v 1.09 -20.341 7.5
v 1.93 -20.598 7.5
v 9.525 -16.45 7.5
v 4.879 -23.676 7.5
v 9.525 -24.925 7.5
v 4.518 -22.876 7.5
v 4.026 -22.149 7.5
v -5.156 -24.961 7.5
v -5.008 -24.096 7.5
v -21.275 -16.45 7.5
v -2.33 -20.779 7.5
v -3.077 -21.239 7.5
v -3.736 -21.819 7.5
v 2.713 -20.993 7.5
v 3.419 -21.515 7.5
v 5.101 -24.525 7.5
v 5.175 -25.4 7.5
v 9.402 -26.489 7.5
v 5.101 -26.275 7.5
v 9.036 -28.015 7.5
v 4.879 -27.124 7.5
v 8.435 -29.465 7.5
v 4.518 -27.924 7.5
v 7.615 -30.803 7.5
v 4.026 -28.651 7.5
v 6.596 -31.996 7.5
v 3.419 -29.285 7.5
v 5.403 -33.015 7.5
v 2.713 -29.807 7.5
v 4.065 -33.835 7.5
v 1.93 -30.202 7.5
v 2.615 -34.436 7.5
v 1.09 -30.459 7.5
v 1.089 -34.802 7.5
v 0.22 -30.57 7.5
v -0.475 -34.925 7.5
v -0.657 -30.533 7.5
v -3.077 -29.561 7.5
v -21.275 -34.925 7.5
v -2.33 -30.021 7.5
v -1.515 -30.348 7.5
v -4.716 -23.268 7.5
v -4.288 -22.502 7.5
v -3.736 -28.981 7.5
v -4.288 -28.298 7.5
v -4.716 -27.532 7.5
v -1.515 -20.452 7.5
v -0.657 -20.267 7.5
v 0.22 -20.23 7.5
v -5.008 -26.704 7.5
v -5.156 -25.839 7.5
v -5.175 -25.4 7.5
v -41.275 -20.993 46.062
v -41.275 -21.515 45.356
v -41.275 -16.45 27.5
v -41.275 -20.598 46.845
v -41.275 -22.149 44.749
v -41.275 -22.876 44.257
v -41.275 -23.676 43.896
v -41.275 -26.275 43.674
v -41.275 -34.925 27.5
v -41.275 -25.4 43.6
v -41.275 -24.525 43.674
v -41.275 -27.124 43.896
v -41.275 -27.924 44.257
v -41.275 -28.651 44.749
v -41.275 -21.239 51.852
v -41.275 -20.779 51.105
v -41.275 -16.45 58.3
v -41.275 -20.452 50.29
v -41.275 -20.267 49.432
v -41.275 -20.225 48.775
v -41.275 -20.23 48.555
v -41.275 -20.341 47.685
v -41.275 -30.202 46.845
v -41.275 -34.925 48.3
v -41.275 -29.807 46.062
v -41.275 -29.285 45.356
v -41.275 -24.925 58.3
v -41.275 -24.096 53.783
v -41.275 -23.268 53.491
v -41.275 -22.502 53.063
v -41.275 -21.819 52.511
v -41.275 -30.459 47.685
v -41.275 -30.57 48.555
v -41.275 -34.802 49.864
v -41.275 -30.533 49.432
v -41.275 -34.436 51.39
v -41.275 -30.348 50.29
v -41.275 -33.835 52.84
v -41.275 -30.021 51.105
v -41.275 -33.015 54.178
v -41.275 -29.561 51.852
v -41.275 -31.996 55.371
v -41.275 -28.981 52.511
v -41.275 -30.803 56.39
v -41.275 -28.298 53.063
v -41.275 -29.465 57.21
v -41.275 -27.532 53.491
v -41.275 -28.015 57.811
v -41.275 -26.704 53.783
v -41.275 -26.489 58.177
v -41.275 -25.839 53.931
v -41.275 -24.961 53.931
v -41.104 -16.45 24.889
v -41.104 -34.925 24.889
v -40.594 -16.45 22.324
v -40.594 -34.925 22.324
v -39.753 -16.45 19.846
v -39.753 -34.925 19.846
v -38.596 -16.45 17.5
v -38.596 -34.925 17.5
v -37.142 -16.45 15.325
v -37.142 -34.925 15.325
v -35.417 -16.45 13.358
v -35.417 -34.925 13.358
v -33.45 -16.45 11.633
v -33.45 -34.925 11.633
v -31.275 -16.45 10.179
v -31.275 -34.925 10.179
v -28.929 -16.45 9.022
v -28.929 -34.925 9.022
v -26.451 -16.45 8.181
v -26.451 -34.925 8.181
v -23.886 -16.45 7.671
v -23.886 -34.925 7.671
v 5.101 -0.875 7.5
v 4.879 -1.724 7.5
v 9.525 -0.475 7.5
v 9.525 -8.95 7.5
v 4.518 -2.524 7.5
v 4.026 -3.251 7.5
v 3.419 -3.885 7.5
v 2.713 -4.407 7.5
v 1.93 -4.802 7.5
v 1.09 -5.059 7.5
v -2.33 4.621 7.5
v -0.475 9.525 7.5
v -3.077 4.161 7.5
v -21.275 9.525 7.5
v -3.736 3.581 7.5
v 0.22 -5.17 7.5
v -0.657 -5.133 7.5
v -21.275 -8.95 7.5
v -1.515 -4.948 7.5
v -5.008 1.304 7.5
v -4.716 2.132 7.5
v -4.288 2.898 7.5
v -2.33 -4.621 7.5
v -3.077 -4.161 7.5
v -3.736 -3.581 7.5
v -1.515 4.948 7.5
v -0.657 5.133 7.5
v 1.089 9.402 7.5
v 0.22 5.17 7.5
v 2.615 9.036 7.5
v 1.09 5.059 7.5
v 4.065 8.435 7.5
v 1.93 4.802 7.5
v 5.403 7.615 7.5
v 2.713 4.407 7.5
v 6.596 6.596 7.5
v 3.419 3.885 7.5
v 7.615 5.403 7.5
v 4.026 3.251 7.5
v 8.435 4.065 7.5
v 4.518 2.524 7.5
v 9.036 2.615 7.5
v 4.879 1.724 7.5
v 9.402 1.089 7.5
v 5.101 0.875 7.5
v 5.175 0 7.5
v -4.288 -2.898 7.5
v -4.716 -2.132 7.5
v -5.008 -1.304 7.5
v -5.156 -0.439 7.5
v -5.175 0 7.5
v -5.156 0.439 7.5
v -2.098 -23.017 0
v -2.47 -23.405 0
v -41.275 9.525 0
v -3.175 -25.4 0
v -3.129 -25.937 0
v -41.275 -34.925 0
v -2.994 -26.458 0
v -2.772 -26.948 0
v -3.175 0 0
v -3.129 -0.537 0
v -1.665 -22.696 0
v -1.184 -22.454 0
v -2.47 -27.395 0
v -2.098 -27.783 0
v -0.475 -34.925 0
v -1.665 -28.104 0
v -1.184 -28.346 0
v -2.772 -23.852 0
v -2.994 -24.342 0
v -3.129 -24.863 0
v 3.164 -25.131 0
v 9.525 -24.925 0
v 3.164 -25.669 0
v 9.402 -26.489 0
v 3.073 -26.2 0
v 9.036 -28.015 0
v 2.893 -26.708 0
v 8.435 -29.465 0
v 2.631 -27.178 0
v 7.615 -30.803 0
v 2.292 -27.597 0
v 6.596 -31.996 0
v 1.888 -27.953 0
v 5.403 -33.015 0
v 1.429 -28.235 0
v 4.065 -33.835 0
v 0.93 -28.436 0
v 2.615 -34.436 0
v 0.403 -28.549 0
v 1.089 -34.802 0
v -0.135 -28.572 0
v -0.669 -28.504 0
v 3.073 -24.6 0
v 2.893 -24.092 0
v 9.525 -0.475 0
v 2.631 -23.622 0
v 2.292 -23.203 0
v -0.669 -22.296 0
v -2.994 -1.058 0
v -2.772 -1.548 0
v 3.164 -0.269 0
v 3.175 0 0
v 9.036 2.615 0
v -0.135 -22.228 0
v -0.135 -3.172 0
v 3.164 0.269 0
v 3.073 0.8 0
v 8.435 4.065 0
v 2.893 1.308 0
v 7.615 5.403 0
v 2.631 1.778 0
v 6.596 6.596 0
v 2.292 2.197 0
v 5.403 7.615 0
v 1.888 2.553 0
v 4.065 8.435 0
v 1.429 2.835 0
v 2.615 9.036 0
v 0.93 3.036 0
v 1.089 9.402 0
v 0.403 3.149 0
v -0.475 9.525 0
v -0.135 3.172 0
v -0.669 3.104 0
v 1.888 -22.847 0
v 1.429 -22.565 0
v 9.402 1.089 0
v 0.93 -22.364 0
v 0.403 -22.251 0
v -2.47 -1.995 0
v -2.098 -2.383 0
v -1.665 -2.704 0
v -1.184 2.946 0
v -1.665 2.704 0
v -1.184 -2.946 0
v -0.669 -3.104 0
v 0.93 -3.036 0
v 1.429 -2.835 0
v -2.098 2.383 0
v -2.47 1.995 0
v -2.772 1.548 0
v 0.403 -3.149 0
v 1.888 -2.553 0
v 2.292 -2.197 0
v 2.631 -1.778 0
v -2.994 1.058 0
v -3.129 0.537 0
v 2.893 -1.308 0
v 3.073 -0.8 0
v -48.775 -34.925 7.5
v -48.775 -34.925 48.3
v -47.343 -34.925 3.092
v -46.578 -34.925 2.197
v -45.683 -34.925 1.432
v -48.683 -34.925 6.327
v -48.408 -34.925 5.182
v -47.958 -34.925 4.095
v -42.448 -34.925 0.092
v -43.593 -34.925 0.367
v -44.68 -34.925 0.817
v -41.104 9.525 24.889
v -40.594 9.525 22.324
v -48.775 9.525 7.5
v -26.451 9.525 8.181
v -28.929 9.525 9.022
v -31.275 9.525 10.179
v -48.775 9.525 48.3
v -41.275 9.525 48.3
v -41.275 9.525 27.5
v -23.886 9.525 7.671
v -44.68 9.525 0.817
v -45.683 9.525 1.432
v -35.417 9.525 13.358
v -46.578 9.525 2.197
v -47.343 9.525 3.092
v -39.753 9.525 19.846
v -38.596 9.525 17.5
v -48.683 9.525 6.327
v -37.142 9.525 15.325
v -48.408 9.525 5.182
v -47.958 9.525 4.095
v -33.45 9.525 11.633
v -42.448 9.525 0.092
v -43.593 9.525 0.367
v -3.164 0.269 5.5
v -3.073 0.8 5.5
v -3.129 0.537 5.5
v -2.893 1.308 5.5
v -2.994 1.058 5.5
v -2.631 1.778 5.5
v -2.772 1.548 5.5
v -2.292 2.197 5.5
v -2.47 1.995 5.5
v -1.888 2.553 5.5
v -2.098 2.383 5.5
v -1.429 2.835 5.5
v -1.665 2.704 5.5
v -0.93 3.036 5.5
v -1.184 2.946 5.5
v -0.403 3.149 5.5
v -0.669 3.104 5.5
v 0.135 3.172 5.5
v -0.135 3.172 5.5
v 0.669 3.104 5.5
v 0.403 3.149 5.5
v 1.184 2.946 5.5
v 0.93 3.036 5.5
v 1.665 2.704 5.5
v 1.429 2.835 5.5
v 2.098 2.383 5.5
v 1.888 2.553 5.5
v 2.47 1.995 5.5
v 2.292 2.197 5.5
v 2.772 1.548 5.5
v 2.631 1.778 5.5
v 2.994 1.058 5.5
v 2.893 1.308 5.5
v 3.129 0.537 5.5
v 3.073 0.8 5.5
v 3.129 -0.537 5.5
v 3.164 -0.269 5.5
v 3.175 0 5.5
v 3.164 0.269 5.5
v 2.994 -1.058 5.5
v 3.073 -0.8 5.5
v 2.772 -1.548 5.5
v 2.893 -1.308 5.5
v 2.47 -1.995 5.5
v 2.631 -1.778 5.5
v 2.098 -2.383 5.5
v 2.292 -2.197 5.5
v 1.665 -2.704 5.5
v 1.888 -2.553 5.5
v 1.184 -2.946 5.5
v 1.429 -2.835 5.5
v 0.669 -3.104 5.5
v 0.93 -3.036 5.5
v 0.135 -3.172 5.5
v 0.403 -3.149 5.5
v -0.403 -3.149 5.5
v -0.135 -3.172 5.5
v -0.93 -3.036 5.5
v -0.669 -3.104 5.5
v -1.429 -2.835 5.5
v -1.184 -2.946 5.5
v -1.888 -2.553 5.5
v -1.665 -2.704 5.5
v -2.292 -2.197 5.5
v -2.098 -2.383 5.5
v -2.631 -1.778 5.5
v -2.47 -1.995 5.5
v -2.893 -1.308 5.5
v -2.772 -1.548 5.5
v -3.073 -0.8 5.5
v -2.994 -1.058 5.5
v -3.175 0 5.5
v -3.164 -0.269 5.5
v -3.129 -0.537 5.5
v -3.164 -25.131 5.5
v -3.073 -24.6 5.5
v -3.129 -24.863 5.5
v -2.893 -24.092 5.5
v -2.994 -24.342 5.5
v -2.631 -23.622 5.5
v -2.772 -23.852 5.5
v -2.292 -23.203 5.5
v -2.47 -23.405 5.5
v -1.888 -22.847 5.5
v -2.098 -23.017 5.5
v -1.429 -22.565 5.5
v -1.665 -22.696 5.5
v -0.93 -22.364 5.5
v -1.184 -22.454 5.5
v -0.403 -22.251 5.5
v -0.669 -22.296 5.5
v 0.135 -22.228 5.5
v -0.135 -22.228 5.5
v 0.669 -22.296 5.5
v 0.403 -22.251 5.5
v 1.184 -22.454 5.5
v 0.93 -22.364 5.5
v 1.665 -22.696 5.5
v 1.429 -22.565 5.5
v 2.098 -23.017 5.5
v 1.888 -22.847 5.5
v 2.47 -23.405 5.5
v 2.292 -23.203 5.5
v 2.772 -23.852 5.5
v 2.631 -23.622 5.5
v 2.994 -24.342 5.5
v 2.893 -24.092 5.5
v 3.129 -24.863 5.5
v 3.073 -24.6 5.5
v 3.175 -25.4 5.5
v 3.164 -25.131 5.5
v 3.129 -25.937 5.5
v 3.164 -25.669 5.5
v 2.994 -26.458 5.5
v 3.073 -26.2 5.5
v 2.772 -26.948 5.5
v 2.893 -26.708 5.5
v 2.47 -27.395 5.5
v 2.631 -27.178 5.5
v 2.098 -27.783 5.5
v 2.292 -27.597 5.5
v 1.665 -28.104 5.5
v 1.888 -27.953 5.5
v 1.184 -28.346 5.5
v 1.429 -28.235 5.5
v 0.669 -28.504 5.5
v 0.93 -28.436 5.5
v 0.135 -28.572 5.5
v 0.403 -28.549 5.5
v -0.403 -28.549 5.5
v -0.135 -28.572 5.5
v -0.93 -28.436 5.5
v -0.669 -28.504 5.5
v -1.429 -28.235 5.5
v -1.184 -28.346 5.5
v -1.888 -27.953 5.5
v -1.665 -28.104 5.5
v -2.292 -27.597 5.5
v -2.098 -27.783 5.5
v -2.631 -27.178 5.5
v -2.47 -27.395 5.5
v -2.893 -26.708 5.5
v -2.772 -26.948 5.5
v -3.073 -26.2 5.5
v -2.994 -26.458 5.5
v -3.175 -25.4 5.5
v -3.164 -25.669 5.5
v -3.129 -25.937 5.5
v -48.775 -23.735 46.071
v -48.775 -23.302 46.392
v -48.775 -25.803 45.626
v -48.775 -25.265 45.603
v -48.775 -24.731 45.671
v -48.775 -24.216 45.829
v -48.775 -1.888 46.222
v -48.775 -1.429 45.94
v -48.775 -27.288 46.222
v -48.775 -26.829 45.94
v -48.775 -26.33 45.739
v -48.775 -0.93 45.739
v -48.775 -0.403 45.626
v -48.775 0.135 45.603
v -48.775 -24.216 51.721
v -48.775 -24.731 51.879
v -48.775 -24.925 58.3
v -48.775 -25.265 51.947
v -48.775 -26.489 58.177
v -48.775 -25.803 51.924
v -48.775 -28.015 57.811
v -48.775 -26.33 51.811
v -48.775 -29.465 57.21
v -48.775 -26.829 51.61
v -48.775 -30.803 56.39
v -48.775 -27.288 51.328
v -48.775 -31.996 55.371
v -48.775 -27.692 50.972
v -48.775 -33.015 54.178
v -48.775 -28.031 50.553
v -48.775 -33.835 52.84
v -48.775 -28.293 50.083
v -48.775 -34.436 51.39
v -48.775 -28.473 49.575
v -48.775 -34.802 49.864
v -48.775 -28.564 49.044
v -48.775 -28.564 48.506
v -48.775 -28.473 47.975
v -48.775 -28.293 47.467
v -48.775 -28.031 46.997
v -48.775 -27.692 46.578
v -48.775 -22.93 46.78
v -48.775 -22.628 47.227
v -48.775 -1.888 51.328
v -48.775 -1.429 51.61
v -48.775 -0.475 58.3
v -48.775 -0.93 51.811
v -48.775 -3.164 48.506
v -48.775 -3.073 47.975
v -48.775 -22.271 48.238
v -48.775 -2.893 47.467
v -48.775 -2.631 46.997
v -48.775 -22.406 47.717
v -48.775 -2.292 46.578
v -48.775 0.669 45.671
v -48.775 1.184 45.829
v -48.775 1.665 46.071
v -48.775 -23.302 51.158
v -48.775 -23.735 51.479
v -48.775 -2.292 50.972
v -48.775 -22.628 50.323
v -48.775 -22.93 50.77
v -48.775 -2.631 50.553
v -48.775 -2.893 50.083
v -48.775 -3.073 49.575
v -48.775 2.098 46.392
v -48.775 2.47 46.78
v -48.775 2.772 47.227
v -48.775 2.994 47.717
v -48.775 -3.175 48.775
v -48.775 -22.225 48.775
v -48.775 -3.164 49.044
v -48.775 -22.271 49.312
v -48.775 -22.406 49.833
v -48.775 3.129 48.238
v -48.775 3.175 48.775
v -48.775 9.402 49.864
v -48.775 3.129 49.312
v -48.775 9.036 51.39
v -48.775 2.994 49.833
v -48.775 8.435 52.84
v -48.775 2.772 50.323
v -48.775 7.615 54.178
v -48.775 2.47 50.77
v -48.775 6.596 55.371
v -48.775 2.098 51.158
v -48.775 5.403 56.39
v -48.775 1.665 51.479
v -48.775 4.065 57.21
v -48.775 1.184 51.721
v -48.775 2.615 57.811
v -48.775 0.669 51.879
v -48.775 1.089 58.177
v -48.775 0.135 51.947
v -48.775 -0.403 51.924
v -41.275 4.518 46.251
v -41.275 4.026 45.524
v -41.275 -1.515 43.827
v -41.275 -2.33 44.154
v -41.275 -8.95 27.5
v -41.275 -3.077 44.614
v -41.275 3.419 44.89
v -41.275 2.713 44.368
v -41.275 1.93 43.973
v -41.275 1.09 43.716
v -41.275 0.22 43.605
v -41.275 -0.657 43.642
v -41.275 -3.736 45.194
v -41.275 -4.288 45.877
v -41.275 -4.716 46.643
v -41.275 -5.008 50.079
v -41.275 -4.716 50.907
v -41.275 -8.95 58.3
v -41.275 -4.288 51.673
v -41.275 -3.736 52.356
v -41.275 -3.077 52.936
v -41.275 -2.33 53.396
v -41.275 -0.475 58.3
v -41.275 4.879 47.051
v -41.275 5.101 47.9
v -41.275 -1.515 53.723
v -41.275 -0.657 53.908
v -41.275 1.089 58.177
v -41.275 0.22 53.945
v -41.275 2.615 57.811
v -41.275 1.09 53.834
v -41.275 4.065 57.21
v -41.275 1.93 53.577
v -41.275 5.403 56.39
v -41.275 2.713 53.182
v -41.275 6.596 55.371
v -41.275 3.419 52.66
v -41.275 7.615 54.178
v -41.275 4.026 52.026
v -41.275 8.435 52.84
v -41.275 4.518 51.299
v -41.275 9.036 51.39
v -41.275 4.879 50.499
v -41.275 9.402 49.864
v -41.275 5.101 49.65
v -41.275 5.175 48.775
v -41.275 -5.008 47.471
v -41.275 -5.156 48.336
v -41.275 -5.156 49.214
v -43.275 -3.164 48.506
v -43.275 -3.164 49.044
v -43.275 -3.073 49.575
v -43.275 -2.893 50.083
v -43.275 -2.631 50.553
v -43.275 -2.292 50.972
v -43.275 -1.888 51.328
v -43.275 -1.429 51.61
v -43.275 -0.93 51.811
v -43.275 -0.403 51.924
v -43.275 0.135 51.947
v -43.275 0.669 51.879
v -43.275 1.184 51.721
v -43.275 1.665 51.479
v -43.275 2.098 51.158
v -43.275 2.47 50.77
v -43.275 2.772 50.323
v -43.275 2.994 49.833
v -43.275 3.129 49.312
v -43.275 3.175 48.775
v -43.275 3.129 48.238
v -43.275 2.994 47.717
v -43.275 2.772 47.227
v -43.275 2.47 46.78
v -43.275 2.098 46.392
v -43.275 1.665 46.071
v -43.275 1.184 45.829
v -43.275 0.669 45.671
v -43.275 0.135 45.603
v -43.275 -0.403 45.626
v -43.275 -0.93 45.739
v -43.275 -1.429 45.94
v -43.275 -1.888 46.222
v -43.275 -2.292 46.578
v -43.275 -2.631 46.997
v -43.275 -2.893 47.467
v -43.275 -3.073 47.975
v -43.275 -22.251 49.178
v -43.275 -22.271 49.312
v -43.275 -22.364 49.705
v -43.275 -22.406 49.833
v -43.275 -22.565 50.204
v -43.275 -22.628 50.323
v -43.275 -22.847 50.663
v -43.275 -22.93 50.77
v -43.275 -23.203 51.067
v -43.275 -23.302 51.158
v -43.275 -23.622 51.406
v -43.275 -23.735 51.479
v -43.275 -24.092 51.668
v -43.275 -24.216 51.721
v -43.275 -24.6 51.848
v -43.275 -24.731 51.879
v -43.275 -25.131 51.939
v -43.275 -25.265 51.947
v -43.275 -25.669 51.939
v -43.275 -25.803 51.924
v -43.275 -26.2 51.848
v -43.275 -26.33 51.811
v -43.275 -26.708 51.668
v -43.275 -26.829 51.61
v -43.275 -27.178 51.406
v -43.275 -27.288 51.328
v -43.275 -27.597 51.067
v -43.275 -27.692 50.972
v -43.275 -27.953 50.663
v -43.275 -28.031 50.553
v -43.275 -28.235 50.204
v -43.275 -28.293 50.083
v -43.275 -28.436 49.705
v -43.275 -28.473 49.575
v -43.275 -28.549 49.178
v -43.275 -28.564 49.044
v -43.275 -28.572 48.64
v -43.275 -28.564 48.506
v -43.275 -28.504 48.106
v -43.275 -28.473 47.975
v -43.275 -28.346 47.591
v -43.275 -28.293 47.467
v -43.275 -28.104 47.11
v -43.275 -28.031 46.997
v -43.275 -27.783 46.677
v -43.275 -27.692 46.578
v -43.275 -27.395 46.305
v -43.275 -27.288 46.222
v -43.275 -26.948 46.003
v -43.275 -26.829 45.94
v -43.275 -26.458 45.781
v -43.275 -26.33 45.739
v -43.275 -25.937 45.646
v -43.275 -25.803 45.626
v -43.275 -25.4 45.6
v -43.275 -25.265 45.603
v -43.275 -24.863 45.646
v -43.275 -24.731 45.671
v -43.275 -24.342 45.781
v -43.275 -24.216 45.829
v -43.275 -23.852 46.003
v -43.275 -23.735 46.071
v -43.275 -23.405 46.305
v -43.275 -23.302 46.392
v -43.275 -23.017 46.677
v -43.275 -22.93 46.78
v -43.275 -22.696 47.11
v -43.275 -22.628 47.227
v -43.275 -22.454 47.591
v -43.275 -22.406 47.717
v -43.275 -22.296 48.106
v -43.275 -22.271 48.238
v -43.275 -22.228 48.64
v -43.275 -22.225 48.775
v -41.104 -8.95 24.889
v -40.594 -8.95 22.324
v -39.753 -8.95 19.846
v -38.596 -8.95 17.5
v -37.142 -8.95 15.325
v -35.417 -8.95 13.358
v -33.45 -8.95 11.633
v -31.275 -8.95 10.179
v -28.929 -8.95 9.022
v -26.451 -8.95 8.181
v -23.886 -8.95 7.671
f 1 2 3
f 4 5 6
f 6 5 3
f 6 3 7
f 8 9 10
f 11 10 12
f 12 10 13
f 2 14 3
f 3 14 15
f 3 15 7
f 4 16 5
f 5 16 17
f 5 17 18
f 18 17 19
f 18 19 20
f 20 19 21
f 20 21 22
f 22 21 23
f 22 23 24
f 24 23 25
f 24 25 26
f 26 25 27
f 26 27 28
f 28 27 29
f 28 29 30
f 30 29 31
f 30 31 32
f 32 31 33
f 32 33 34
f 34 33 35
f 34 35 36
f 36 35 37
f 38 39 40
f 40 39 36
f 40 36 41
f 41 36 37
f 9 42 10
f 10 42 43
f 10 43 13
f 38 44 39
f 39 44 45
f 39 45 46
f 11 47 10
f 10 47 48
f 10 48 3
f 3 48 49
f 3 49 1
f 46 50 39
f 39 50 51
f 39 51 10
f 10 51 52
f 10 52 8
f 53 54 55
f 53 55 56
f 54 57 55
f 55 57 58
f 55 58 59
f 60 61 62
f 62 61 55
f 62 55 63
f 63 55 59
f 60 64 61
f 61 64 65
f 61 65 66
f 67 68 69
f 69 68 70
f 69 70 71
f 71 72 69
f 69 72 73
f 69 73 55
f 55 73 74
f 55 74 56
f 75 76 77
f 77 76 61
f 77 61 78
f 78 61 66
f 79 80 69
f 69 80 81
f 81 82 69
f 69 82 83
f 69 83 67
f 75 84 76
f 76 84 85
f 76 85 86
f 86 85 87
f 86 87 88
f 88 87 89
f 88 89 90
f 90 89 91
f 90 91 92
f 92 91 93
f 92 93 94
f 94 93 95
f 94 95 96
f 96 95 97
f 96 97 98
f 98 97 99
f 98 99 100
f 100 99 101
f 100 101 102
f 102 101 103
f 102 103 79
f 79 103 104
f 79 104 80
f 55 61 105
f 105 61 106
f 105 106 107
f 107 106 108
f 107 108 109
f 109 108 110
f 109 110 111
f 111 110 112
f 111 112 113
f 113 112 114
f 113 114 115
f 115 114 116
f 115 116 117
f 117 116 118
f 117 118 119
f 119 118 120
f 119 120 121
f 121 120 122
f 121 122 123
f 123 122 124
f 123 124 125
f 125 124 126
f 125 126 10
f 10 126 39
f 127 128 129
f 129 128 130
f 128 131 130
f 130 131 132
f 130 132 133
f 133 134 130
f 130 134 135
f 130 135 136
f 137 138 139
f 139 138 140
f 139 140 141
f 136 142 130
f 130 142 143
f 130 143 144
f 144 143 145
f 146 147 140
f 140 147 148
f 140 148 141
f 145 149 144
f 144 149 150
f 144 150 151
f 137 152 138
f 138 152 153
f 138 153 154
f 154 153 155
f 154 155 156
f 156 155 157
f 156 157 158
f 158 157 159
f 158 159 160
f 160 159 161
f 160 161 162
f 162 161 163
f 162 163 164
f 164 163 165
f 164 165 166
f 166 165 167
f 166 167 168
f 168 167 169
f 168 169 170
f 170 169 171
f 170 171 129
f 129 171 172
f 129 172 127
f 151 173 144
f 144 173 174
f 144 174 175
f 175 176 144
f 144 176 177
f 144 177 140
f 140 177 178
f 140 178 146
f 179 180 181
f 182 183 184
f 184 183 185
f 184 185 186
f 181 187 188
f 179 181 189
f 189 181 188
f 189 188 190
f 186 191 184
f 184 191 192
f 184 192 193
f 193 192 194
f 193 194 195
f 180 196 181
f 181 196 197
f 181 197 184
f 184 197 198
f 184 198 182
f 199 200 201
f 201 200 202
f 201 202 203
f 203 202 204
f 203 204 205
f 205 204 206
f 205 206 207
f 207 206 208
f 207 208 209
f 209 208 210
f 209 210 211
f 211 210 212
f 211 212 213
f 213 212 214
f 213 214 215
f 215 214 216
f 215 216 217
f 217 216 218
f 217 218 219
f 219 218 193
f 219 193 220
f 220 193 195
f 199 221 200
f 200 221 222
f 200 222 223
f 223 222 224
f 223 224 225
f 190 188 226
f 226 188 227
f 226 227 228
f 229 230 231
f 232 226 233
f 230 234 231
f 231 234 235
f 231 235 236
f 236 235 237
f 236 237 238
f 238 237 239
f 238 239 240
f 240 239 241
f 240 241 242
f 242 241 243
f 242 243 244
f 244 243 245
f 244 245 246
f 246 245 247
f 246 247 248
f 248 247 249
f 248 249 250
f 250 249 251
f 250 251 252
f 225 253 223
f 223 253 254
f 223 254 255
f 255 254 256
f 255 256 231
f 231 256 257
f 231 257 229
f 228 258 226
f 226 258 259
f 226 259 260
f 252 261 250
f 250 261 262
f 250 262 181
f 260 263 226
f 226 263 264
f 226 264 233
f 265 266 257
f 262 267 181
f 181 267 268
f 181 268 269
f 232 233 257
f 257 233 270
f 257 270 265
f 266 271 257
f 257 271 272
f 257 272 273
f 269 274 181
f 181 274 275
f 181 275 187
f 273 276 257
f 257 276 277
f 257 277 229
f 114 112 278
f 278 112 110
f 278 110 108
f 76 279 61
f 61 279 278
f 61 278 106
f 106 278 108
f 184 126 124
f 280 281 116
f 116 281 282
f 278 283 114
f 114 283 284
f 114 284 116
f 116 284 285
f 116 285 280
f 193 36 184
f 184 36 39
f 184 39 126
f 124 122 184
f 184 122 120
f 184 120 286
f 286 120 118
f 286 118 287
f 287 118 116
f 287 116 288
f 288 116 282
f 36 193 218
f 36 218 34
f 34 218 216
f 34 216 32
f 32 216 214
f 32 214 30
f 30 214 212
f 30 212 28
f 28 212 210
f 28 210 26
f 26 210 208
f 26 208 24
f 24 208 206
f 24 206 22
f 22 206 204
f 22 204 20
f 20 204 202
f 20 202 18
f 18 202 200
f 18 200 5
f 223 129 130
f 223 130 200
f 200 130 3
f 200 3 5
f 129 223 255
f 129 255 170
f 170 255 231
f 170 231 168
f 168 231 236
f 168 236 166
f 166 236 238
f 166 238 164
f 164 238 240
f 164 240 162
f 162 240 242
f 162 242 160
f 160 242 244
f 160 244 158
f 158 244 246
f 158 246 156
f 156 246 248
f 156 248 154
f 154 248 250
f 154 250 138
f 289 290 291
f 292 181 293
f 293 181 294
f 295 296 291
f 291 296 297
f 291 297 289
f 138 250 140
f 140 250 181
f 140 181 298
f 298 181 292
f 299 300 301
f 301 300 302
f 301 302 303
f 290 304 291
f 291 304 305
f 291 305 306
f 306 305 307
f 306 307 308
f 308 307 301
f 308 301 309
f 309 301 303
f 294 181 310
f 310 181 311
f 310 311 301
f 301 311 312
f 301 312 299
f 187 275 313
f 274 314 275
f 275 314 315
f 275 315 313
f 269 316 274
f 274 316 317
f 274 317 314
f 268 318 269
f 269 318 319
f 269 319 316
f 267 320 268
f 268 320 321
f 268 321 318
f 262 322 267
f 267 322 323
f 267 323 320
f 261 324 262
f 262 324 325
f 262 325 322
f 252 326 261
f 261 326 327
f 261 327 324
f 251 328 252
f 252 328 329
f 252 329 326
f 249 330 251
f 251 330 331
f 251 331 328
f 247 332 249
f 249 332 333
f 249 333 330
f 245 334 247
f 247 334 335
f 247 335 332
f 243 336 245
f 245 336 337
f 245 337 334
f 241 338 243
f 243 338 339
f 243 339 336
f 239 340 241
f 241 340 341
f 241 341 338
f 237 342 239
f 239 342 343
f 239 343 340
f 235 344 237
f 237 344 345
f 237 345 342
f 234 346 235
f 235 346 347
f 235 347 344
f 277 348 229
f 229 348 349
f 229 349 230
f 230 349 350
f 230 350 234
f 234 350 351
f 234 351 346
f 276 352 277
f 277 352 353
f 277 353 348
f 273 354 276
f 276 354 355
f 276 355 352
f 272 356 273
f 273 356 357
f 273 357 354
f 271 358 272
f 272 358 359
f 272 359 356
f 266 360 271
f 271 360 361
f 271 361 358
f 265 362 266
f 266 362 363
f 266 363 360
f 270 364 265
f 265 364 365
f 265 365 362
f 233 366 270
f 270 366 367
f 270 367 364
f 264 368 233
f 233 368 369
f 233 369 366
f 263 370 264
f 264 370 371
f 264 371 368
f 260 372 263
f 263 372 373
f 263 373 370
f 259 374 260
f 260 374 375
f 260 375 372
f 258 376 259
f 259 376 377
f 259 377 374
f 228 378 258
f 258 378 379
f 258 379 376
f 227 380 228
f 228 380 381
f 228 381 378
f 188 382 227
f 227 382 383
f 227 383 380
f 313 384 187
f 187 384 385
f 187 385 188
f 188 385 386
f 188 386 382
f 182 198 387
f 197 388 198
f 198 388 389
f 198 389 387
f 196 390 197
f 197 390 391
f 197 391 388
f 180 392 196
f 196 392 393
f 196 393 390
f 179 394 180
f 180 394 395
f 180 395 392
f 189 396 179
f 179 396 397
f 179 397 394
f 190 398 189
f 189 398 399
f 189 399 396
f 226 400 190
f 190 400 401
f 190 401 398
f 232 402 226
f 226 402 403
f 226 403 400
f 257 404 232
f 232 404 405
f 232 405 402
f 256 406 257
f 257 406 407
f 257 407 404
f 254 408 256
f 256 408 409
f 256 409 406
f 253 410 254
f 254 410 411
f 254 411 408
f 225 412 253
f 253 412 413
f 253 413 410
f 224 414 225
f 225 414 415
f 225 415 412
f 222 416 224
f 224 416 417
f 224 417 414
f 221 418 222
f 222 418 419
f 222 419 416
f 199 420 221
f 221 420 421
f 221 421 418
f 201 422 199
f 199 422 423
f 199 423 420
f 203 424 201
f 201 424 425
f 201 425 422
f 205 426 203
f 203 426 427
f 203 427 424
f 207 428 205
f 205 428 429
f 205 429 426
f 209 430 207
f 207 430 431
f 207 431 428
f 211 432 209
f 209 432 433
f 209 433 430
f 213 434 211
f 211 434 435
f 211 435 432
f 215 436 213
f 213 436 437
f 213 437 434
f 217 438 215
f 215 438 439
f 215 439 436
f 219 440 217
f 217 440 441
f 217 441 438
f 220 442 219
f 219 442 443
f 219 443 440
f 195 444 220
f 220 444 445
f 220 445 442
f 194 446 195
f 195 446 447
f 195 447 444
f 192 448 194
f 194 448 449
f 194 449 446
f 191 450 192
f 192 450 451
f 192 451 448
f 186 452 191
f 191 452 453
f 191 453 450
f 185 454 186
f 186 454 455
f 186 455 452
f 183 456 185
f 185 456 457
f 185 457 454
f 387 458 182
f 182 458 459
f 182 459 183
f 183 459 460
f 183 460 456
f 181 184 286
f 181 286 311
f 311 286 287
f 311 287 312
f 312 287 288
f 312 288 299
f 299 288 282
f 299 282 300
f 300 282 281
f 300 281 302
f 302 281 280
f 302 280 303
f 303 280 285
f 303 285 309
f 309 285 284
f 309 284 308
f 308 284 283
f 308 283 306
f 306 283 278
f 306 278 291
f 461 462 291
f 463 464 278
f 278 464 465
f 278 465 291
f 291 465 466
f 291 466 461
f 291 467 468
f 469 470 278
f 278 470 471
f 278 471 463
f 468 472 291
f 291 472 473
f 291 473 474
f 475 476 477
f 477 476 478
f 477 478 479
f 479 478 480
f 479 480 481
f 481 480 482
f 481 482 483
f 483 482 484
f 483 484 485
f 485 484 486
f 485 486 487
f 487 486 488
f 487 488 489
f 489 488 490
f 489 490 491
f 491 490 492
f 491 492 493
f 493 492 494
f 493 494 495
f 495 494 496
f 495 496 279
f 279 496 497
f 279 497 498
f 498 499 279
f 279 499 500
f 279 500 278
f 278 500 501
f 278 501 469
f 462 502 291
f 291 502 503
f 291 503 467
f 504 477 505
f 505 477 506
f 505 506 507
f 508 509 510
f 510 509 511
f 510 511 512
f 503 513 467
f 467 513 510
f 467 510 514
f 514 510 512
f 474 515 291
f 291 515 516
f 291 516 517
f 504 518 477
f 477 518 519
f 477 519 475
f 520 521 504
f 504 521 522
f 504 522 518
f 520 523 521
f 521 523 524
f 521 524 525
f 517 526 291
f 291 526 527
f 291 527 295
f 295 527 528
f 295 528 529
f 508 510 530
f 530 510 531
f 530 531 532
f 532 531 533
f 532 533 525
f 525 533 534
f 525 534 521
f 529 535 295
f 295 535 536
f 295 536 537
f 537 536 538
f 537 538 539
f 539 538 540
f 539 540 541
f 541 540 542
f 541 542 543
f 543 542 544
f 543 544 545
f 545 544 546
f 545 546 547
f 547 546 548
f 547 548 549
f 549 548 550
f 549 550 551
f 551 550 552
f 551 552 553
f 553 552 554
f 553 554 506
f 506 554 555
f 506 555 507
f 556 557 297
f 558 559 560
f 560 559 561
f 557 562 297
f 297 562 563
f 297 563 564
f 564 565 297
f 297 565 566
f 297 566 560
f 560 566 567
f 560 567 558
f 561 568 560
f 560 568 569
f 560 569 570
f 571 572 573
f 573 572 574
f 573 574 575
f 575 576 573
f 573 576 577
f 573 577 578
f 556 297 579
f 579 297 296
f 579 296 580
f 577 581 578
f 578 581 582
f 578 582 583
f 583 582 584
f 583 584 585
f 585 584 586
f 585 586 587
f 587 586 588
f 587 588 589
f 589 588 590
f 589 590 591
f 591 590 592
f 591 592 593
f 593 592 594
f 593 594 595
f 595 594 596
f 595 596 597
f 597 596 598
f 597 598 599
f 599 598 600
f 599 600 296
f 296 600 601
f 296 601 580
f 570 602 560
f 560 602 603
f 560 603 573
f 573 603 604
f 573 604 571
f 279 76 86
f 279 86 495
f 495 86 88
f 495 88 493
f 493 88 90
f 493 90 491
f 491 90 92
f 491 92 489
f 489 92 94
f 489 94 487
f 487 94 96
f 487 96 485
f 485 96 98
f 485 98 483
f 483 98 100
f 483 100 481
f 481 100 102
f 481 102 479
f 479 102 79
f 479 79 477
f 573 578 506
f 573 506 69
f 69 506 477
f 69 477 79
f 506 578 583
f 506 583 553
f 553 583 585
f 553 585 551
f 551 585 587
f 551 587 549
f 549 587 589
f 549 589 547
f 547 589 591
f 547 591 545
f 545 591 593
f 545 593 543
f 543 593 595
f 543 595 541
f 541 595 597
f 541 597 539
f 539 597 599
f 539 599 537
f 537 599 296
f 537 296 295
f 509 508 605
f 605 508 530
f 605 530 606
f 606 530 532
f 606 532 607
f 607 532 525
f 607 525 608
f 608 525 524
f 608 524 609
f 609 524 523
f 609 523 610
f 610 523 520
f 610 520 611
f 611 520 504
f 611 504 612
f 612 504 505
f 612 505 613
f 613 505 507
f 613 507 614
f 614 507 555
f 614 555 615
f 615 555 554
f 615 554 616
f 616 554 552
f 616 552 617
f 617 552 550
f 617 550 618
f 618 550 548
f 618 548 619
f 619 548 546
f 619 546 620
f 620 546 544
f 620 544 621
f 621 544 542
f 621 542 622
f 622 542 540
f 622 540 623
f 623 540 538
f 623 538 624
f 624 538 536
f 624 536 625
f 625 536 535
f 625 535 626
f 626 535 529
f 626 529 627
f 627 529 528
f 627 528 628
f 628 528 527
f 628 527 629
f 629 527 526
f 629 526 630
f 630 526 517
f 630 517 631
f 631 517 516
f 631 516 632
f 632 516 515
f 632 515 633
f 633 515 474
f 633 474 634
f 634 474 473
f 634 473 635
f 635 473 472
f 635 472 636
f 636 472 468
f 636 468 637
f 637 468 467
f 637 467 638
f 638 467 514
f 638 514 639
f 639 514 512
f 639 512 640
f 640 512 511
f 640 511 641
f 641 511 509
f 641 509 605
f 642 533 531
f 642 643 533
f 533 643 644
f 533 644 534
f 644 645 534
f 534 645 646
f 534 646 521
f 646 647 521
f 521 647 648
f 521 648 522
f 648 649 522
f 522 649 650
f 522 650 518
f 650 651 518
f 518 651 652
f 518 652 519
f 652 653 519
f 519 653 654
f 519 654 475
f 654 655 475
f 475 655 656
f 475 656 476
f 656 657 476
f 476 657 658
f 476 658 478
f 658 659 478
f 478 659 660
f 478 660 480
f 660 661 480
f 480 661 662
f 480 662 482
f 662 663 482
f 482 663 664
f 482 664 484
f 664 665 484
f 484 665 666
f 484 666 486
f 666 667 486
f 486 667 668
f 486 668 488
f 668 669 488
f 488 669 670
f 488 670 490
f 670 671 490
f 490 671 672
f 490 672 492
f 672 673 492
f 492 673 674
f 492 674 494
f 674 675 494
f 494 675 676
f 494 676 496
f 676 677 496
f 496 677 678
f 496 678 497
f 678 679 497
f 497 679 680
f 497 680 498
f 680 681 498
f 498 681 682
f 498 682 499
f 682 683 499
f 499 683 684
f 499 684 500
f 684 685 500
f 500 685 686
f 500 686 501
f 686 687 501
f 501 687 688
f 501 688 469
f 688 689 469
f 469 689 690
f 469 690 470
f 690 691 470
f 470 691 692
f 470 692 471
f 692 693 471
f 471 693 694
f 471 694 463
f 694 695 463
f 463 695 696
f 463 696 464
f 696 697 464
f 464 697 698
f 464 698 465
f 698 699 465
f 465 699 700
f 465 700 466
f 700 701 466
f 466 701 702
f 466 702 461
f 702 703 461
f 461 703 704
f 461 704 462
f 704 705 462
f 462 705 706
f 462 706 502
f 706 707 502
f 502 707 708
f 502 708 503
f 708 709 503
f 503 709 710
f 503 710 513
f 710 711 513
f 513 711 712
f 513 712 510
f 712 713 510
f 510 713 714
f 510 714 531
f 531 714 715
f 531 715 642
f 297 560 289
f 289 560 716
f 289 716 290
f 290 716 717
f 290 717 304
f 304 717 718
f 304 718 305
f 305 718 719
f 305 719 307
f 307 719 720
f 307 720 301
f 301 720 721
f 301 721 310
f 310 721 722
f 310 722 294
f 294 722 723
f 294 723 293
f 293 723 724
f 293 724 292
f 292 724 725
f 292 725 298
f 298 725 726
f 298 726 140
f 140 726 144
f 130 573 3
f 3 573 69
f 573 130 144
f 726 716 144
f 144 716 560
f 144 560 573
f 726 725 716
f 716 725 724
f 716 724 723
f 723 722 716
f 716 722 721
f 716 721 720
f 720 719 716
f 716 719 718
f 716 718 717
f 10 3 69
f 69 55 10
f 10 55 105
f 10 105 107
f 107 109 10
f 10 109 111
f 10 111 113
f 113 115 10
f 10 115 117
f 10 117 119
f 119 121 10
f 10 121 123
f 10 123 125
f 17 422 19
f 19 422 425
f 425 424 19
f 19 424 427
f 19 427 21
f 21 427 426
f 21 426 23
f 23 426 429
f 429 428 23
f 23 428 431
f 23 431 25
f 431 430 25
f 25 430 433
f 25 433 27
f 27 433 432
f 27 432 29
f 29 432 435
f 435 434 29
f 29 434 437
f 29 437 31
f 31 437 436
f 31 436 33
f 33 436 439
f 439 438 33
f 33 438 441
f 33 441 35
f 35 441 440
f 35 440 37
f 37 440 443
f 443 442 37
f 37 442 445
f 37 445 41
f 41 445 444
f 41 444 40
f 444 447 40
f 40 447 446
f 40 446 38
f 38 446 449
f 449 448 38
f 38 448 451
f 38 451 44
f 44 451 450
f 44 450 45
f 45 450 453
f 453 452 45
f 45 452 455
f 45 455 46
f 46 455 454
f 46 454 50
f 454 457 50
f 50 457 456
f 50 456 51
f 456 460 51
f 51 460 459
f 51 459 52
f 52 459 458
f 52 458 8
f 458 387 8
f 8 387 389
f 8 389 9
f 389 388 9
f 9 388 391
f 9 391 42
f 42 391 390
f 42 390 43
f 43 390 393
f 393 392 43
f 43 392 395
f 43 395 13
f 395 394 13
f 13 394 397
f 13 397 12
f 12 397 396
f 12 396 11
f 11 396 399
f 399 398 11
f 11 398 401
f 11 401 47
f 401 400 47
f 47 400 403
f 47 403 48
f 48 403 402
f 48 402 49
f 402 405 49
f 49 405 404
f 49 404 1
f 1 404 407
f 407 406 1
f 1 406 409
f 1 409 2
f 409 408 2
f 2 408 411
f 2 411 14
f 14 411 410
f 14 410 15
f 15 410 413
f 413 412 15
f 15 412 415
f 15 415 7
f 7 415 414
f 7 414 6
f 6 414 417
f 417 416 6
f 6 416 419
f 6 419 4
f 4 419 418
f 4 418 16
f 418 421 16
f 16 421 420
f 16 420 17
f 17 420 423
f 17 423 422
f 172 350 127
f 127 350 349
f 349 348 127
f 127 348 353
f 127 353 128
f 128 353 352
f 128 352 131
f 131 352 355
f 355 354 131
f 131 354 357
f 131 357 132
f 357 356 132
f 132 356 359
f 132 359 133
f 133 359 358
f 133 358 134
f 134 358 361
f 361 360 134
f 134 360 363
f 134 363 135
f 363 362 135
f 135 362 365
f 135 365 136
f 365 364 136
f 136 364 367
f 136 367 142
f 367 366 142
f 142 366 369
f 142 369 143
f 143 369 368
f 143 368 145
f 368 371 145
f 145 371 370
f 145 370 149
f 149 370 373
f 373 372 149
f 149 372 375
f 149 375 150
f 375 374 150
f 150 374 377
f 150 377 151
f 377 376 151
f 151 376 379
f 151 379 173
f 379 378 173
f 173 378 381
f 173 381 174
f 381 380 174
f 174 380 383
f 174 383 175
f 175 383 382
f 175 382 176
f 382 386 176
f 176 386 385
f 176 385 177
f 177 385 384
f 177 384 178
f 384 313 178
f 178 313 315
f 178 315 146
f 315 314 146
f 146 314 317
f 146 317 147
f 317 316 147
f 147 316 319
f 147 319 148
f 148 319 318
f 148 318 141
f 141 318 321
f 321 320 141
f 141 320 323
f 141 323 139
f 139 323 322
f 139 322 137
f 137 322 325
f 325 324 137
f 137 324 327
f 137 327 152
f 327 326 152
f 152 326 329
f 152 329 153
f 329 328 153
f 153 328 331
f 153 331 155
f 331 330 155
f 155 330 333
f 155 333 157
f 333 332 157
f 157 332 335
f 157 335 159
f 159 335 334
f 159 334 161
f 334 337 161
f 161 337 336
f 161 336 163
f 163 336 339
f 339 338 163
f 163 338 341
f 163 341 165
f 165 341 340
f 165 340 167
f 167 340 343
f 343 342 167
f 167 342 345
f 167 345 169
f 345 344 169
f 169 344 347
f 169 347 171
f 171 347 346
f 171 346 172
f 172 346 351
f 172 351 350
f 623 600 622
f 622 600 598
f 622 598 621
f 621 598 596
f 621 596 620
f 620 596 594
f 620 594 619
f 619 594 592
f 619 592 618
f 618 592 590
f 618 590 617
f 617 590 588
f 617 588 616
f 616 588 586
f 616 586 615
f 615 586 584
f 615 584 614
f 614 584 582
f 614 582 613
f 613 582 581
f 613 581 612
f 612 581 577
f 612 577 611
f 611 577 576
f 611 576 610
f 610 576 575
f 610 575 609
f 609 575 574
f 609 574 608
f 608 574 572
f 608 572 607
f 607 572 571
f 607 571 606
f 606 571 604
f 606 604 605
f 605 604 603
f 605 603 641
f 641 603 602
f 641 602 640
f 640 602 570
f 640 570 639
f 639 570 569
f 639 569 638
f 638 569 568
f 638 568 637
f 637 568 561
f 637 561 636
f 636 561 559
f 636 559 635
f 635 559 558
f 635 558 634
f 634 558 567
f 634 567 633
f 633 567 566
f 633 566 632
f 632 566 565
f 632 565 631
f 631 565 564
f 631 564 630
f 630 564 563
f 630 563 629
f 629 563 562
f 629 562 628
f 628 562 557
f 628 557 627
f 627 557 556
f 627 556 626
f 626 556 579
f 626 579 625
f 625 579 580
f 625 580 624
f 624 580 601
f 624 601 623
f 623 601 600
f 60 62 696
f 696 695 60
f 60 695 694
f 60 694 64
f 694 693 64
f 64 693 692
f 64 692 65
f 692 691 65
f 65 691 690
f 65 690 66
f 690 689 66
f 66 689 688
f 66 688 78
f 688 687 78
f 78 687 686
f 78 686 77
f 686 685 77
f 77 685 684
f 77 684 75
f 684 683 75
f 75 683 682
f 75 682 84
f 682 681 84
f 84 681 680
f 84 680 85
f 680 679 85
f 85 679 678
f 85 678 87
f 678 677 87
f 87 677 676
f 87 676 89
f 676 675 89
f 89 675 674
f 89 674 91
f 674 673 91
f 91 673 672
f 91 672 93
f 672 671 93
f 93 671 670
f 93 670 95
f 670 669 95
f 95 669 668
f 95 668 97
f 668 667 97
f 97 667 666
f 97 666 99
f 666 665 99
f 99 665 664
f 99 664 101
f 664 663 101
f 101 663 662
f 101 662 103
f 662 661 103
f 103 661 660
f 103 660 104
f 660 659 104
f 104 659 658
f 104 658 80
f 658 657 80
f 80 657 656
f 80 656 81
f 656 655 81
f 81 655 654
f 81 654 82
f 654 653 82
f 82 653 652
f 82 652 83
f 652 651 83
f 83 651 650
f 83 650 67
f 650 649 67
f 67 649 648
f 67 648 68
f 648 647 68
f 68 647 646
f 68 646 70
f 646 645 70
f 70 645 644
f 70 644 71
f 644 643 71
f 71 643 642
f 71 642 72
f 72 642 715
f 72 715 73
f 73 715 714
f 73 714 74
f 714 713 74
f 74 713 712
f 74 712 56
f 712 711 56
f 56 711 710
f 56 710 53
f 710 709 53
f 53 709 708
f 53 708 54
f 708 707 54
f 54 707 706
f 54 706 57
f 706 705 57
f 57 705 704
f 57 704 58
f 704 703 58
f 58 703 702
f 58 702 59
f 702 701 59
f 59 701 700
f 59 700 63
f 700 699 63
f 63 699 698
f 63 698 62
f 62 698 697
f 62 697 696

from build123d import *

# Parameters (mm, degrees)
SKETCH1_R           = 3.175
BOSS_EXTRUDE1_DEPTH = 7.5
SKETCH2_R           = 3.175
BOSS_EXTRUDE2_DEPTH = 7.5
BOSS_EXTRUDE3_DEPTH = 44.45
FILLET1_R           = 20
BOSS_EXTRUDE4_DEPTH = 3.75
CHAMFER1_SIZE       = 2


with BuildPart() as part:
    # Sketch1 → Boss-Extrude1 (new body)
    with BuildSketch(Plane.XY):
        with BuildLine():
            Line((-41.275, 9.525), (-0.475, 9.525))
            ThreePointArc((-0.475, 9.525), (6.596067812, 6.596067812), (9.525, -0.475))
            Line((9.525, -0.475), (9.525, -24.925))
            ThreePointArc((9.525, -24.925), (6.596067812, -31.996067812), (-0.475, -34.925))
            Line((-0.475, -34.925), (-41.275, -34.925))
            Line((-41.275, -34.925), (-41.275, 9.525))
        make_face()
        Circle(SKETCH1_R, mode=Mode.SUBTRACT)
        with Locations(Location((0, -25.4, 0), (0, 0, 180))):
            Circle(SKETCH1_R, mode=Mode.SUBTRACT)
    extrude(amount=BOSS_EXTRUDE1_DEPTH)



with BuildPart() as body_2:
    # Sketch2 → Boss-Extrude2 (new body)
    with BuildSketch(Plane.ZY.offset(41.275)):
        with BuildLine():
            Line((7.5, 9.525), (48.3, 9.525))
            ThreePointArc((48.3, 9.525), (55.371067812, 6.596067812), (58.3, -0.475))
            Line((58.3, -0.475), (58.3, -24.925))
            ThreePointArc((58.3, -24.925), (55.371067812, -31.996067812), (48.3, -34.925))
            Line((48.3, -34.925), (7.5, -34.925))
            Line((7.5, -34.925), (7.5, 9.525))
        make_face()
        with Locations(Location((48.775, 0, 0), (0, 0, 270))):
            Circle(SKETCH2_R, mode=Mode.SUBTRACT)
        with Locations(Location((48.775, -25.4, 0), (0, 0, 90))):
            Circle(SKETCH2_R, mode=Mode.SUBTRACT)
    extrude(amount=BOSS_EXTRUDE2_DEPTH)


with BuildPart() as part_1:
    add(part.part)

    add(body_2.part)  # Boss-Extrude3 merges body 2
    # Sketch3 → Boss-Extrude3 (add)
    with BuildSketch(Plane.XZ.offset(34.925)):
        with BuildLine():
            Line((-48.775, 7.5), (-41.275, 7.5))
            Line((-41.275, 7.5), (-41.275, 0))
            ThreePointArc((-41.275, 0), (-46.578300859, 2.196699141), (-48.775, 7.5))
        make_face()
    extrude(amount=-BOSS_EXTRUDE3_DEPTH)

    # Fillet1
    fillet1_edges = [part_1.edges().sort_by_distance(p)[0] for p in [
        (-41.275, -12.7, 7.5),
    ]]
    fillet(fillet1_edges, radius=FILLET1_R)

    # Sketch4 → Boss-Extrude4 (add, symmetric)
    with BuildSketch(Plane(origin=(0, -12.7, 0), x_dir=(1, 0, 0), z_dir=(0, 1, 0))):
        with BuildLine():
            Line((-0.475, -7.5), (9.525, -7.5))
            Line((9.525, -7.5), (-41.275, -58.3))
            Line((-41.275, -58.3), (-41.275, -48.3))
            Line((-41.275, -48.3), (-41.275, -27.5))
            ThreePointArc((-41.275, -27.5), (-35.417135624, -13.357864376), (-21.275, -7.5))
            Line((-21.275, -7.5), (-0.475, -7.5))
        make_face()
    extrude(amount=BOSS_EXTRUDE4_DEPTH, both=True)

    # Chamfer1
    chamfer1_edges = [part_1.edges().sort_by_distance(p)[0] for p in [
        (-3.175, 0, 7.5),
        (3.175, -25.4, 7.5),
        (-41.275, 3.175, 48.775),
        (-41.275, -28.575, 48.775),
    ]]
    chamfer(chamfer1_edges, length=CHAMFER1_SIZE)


solid = part_1.part
